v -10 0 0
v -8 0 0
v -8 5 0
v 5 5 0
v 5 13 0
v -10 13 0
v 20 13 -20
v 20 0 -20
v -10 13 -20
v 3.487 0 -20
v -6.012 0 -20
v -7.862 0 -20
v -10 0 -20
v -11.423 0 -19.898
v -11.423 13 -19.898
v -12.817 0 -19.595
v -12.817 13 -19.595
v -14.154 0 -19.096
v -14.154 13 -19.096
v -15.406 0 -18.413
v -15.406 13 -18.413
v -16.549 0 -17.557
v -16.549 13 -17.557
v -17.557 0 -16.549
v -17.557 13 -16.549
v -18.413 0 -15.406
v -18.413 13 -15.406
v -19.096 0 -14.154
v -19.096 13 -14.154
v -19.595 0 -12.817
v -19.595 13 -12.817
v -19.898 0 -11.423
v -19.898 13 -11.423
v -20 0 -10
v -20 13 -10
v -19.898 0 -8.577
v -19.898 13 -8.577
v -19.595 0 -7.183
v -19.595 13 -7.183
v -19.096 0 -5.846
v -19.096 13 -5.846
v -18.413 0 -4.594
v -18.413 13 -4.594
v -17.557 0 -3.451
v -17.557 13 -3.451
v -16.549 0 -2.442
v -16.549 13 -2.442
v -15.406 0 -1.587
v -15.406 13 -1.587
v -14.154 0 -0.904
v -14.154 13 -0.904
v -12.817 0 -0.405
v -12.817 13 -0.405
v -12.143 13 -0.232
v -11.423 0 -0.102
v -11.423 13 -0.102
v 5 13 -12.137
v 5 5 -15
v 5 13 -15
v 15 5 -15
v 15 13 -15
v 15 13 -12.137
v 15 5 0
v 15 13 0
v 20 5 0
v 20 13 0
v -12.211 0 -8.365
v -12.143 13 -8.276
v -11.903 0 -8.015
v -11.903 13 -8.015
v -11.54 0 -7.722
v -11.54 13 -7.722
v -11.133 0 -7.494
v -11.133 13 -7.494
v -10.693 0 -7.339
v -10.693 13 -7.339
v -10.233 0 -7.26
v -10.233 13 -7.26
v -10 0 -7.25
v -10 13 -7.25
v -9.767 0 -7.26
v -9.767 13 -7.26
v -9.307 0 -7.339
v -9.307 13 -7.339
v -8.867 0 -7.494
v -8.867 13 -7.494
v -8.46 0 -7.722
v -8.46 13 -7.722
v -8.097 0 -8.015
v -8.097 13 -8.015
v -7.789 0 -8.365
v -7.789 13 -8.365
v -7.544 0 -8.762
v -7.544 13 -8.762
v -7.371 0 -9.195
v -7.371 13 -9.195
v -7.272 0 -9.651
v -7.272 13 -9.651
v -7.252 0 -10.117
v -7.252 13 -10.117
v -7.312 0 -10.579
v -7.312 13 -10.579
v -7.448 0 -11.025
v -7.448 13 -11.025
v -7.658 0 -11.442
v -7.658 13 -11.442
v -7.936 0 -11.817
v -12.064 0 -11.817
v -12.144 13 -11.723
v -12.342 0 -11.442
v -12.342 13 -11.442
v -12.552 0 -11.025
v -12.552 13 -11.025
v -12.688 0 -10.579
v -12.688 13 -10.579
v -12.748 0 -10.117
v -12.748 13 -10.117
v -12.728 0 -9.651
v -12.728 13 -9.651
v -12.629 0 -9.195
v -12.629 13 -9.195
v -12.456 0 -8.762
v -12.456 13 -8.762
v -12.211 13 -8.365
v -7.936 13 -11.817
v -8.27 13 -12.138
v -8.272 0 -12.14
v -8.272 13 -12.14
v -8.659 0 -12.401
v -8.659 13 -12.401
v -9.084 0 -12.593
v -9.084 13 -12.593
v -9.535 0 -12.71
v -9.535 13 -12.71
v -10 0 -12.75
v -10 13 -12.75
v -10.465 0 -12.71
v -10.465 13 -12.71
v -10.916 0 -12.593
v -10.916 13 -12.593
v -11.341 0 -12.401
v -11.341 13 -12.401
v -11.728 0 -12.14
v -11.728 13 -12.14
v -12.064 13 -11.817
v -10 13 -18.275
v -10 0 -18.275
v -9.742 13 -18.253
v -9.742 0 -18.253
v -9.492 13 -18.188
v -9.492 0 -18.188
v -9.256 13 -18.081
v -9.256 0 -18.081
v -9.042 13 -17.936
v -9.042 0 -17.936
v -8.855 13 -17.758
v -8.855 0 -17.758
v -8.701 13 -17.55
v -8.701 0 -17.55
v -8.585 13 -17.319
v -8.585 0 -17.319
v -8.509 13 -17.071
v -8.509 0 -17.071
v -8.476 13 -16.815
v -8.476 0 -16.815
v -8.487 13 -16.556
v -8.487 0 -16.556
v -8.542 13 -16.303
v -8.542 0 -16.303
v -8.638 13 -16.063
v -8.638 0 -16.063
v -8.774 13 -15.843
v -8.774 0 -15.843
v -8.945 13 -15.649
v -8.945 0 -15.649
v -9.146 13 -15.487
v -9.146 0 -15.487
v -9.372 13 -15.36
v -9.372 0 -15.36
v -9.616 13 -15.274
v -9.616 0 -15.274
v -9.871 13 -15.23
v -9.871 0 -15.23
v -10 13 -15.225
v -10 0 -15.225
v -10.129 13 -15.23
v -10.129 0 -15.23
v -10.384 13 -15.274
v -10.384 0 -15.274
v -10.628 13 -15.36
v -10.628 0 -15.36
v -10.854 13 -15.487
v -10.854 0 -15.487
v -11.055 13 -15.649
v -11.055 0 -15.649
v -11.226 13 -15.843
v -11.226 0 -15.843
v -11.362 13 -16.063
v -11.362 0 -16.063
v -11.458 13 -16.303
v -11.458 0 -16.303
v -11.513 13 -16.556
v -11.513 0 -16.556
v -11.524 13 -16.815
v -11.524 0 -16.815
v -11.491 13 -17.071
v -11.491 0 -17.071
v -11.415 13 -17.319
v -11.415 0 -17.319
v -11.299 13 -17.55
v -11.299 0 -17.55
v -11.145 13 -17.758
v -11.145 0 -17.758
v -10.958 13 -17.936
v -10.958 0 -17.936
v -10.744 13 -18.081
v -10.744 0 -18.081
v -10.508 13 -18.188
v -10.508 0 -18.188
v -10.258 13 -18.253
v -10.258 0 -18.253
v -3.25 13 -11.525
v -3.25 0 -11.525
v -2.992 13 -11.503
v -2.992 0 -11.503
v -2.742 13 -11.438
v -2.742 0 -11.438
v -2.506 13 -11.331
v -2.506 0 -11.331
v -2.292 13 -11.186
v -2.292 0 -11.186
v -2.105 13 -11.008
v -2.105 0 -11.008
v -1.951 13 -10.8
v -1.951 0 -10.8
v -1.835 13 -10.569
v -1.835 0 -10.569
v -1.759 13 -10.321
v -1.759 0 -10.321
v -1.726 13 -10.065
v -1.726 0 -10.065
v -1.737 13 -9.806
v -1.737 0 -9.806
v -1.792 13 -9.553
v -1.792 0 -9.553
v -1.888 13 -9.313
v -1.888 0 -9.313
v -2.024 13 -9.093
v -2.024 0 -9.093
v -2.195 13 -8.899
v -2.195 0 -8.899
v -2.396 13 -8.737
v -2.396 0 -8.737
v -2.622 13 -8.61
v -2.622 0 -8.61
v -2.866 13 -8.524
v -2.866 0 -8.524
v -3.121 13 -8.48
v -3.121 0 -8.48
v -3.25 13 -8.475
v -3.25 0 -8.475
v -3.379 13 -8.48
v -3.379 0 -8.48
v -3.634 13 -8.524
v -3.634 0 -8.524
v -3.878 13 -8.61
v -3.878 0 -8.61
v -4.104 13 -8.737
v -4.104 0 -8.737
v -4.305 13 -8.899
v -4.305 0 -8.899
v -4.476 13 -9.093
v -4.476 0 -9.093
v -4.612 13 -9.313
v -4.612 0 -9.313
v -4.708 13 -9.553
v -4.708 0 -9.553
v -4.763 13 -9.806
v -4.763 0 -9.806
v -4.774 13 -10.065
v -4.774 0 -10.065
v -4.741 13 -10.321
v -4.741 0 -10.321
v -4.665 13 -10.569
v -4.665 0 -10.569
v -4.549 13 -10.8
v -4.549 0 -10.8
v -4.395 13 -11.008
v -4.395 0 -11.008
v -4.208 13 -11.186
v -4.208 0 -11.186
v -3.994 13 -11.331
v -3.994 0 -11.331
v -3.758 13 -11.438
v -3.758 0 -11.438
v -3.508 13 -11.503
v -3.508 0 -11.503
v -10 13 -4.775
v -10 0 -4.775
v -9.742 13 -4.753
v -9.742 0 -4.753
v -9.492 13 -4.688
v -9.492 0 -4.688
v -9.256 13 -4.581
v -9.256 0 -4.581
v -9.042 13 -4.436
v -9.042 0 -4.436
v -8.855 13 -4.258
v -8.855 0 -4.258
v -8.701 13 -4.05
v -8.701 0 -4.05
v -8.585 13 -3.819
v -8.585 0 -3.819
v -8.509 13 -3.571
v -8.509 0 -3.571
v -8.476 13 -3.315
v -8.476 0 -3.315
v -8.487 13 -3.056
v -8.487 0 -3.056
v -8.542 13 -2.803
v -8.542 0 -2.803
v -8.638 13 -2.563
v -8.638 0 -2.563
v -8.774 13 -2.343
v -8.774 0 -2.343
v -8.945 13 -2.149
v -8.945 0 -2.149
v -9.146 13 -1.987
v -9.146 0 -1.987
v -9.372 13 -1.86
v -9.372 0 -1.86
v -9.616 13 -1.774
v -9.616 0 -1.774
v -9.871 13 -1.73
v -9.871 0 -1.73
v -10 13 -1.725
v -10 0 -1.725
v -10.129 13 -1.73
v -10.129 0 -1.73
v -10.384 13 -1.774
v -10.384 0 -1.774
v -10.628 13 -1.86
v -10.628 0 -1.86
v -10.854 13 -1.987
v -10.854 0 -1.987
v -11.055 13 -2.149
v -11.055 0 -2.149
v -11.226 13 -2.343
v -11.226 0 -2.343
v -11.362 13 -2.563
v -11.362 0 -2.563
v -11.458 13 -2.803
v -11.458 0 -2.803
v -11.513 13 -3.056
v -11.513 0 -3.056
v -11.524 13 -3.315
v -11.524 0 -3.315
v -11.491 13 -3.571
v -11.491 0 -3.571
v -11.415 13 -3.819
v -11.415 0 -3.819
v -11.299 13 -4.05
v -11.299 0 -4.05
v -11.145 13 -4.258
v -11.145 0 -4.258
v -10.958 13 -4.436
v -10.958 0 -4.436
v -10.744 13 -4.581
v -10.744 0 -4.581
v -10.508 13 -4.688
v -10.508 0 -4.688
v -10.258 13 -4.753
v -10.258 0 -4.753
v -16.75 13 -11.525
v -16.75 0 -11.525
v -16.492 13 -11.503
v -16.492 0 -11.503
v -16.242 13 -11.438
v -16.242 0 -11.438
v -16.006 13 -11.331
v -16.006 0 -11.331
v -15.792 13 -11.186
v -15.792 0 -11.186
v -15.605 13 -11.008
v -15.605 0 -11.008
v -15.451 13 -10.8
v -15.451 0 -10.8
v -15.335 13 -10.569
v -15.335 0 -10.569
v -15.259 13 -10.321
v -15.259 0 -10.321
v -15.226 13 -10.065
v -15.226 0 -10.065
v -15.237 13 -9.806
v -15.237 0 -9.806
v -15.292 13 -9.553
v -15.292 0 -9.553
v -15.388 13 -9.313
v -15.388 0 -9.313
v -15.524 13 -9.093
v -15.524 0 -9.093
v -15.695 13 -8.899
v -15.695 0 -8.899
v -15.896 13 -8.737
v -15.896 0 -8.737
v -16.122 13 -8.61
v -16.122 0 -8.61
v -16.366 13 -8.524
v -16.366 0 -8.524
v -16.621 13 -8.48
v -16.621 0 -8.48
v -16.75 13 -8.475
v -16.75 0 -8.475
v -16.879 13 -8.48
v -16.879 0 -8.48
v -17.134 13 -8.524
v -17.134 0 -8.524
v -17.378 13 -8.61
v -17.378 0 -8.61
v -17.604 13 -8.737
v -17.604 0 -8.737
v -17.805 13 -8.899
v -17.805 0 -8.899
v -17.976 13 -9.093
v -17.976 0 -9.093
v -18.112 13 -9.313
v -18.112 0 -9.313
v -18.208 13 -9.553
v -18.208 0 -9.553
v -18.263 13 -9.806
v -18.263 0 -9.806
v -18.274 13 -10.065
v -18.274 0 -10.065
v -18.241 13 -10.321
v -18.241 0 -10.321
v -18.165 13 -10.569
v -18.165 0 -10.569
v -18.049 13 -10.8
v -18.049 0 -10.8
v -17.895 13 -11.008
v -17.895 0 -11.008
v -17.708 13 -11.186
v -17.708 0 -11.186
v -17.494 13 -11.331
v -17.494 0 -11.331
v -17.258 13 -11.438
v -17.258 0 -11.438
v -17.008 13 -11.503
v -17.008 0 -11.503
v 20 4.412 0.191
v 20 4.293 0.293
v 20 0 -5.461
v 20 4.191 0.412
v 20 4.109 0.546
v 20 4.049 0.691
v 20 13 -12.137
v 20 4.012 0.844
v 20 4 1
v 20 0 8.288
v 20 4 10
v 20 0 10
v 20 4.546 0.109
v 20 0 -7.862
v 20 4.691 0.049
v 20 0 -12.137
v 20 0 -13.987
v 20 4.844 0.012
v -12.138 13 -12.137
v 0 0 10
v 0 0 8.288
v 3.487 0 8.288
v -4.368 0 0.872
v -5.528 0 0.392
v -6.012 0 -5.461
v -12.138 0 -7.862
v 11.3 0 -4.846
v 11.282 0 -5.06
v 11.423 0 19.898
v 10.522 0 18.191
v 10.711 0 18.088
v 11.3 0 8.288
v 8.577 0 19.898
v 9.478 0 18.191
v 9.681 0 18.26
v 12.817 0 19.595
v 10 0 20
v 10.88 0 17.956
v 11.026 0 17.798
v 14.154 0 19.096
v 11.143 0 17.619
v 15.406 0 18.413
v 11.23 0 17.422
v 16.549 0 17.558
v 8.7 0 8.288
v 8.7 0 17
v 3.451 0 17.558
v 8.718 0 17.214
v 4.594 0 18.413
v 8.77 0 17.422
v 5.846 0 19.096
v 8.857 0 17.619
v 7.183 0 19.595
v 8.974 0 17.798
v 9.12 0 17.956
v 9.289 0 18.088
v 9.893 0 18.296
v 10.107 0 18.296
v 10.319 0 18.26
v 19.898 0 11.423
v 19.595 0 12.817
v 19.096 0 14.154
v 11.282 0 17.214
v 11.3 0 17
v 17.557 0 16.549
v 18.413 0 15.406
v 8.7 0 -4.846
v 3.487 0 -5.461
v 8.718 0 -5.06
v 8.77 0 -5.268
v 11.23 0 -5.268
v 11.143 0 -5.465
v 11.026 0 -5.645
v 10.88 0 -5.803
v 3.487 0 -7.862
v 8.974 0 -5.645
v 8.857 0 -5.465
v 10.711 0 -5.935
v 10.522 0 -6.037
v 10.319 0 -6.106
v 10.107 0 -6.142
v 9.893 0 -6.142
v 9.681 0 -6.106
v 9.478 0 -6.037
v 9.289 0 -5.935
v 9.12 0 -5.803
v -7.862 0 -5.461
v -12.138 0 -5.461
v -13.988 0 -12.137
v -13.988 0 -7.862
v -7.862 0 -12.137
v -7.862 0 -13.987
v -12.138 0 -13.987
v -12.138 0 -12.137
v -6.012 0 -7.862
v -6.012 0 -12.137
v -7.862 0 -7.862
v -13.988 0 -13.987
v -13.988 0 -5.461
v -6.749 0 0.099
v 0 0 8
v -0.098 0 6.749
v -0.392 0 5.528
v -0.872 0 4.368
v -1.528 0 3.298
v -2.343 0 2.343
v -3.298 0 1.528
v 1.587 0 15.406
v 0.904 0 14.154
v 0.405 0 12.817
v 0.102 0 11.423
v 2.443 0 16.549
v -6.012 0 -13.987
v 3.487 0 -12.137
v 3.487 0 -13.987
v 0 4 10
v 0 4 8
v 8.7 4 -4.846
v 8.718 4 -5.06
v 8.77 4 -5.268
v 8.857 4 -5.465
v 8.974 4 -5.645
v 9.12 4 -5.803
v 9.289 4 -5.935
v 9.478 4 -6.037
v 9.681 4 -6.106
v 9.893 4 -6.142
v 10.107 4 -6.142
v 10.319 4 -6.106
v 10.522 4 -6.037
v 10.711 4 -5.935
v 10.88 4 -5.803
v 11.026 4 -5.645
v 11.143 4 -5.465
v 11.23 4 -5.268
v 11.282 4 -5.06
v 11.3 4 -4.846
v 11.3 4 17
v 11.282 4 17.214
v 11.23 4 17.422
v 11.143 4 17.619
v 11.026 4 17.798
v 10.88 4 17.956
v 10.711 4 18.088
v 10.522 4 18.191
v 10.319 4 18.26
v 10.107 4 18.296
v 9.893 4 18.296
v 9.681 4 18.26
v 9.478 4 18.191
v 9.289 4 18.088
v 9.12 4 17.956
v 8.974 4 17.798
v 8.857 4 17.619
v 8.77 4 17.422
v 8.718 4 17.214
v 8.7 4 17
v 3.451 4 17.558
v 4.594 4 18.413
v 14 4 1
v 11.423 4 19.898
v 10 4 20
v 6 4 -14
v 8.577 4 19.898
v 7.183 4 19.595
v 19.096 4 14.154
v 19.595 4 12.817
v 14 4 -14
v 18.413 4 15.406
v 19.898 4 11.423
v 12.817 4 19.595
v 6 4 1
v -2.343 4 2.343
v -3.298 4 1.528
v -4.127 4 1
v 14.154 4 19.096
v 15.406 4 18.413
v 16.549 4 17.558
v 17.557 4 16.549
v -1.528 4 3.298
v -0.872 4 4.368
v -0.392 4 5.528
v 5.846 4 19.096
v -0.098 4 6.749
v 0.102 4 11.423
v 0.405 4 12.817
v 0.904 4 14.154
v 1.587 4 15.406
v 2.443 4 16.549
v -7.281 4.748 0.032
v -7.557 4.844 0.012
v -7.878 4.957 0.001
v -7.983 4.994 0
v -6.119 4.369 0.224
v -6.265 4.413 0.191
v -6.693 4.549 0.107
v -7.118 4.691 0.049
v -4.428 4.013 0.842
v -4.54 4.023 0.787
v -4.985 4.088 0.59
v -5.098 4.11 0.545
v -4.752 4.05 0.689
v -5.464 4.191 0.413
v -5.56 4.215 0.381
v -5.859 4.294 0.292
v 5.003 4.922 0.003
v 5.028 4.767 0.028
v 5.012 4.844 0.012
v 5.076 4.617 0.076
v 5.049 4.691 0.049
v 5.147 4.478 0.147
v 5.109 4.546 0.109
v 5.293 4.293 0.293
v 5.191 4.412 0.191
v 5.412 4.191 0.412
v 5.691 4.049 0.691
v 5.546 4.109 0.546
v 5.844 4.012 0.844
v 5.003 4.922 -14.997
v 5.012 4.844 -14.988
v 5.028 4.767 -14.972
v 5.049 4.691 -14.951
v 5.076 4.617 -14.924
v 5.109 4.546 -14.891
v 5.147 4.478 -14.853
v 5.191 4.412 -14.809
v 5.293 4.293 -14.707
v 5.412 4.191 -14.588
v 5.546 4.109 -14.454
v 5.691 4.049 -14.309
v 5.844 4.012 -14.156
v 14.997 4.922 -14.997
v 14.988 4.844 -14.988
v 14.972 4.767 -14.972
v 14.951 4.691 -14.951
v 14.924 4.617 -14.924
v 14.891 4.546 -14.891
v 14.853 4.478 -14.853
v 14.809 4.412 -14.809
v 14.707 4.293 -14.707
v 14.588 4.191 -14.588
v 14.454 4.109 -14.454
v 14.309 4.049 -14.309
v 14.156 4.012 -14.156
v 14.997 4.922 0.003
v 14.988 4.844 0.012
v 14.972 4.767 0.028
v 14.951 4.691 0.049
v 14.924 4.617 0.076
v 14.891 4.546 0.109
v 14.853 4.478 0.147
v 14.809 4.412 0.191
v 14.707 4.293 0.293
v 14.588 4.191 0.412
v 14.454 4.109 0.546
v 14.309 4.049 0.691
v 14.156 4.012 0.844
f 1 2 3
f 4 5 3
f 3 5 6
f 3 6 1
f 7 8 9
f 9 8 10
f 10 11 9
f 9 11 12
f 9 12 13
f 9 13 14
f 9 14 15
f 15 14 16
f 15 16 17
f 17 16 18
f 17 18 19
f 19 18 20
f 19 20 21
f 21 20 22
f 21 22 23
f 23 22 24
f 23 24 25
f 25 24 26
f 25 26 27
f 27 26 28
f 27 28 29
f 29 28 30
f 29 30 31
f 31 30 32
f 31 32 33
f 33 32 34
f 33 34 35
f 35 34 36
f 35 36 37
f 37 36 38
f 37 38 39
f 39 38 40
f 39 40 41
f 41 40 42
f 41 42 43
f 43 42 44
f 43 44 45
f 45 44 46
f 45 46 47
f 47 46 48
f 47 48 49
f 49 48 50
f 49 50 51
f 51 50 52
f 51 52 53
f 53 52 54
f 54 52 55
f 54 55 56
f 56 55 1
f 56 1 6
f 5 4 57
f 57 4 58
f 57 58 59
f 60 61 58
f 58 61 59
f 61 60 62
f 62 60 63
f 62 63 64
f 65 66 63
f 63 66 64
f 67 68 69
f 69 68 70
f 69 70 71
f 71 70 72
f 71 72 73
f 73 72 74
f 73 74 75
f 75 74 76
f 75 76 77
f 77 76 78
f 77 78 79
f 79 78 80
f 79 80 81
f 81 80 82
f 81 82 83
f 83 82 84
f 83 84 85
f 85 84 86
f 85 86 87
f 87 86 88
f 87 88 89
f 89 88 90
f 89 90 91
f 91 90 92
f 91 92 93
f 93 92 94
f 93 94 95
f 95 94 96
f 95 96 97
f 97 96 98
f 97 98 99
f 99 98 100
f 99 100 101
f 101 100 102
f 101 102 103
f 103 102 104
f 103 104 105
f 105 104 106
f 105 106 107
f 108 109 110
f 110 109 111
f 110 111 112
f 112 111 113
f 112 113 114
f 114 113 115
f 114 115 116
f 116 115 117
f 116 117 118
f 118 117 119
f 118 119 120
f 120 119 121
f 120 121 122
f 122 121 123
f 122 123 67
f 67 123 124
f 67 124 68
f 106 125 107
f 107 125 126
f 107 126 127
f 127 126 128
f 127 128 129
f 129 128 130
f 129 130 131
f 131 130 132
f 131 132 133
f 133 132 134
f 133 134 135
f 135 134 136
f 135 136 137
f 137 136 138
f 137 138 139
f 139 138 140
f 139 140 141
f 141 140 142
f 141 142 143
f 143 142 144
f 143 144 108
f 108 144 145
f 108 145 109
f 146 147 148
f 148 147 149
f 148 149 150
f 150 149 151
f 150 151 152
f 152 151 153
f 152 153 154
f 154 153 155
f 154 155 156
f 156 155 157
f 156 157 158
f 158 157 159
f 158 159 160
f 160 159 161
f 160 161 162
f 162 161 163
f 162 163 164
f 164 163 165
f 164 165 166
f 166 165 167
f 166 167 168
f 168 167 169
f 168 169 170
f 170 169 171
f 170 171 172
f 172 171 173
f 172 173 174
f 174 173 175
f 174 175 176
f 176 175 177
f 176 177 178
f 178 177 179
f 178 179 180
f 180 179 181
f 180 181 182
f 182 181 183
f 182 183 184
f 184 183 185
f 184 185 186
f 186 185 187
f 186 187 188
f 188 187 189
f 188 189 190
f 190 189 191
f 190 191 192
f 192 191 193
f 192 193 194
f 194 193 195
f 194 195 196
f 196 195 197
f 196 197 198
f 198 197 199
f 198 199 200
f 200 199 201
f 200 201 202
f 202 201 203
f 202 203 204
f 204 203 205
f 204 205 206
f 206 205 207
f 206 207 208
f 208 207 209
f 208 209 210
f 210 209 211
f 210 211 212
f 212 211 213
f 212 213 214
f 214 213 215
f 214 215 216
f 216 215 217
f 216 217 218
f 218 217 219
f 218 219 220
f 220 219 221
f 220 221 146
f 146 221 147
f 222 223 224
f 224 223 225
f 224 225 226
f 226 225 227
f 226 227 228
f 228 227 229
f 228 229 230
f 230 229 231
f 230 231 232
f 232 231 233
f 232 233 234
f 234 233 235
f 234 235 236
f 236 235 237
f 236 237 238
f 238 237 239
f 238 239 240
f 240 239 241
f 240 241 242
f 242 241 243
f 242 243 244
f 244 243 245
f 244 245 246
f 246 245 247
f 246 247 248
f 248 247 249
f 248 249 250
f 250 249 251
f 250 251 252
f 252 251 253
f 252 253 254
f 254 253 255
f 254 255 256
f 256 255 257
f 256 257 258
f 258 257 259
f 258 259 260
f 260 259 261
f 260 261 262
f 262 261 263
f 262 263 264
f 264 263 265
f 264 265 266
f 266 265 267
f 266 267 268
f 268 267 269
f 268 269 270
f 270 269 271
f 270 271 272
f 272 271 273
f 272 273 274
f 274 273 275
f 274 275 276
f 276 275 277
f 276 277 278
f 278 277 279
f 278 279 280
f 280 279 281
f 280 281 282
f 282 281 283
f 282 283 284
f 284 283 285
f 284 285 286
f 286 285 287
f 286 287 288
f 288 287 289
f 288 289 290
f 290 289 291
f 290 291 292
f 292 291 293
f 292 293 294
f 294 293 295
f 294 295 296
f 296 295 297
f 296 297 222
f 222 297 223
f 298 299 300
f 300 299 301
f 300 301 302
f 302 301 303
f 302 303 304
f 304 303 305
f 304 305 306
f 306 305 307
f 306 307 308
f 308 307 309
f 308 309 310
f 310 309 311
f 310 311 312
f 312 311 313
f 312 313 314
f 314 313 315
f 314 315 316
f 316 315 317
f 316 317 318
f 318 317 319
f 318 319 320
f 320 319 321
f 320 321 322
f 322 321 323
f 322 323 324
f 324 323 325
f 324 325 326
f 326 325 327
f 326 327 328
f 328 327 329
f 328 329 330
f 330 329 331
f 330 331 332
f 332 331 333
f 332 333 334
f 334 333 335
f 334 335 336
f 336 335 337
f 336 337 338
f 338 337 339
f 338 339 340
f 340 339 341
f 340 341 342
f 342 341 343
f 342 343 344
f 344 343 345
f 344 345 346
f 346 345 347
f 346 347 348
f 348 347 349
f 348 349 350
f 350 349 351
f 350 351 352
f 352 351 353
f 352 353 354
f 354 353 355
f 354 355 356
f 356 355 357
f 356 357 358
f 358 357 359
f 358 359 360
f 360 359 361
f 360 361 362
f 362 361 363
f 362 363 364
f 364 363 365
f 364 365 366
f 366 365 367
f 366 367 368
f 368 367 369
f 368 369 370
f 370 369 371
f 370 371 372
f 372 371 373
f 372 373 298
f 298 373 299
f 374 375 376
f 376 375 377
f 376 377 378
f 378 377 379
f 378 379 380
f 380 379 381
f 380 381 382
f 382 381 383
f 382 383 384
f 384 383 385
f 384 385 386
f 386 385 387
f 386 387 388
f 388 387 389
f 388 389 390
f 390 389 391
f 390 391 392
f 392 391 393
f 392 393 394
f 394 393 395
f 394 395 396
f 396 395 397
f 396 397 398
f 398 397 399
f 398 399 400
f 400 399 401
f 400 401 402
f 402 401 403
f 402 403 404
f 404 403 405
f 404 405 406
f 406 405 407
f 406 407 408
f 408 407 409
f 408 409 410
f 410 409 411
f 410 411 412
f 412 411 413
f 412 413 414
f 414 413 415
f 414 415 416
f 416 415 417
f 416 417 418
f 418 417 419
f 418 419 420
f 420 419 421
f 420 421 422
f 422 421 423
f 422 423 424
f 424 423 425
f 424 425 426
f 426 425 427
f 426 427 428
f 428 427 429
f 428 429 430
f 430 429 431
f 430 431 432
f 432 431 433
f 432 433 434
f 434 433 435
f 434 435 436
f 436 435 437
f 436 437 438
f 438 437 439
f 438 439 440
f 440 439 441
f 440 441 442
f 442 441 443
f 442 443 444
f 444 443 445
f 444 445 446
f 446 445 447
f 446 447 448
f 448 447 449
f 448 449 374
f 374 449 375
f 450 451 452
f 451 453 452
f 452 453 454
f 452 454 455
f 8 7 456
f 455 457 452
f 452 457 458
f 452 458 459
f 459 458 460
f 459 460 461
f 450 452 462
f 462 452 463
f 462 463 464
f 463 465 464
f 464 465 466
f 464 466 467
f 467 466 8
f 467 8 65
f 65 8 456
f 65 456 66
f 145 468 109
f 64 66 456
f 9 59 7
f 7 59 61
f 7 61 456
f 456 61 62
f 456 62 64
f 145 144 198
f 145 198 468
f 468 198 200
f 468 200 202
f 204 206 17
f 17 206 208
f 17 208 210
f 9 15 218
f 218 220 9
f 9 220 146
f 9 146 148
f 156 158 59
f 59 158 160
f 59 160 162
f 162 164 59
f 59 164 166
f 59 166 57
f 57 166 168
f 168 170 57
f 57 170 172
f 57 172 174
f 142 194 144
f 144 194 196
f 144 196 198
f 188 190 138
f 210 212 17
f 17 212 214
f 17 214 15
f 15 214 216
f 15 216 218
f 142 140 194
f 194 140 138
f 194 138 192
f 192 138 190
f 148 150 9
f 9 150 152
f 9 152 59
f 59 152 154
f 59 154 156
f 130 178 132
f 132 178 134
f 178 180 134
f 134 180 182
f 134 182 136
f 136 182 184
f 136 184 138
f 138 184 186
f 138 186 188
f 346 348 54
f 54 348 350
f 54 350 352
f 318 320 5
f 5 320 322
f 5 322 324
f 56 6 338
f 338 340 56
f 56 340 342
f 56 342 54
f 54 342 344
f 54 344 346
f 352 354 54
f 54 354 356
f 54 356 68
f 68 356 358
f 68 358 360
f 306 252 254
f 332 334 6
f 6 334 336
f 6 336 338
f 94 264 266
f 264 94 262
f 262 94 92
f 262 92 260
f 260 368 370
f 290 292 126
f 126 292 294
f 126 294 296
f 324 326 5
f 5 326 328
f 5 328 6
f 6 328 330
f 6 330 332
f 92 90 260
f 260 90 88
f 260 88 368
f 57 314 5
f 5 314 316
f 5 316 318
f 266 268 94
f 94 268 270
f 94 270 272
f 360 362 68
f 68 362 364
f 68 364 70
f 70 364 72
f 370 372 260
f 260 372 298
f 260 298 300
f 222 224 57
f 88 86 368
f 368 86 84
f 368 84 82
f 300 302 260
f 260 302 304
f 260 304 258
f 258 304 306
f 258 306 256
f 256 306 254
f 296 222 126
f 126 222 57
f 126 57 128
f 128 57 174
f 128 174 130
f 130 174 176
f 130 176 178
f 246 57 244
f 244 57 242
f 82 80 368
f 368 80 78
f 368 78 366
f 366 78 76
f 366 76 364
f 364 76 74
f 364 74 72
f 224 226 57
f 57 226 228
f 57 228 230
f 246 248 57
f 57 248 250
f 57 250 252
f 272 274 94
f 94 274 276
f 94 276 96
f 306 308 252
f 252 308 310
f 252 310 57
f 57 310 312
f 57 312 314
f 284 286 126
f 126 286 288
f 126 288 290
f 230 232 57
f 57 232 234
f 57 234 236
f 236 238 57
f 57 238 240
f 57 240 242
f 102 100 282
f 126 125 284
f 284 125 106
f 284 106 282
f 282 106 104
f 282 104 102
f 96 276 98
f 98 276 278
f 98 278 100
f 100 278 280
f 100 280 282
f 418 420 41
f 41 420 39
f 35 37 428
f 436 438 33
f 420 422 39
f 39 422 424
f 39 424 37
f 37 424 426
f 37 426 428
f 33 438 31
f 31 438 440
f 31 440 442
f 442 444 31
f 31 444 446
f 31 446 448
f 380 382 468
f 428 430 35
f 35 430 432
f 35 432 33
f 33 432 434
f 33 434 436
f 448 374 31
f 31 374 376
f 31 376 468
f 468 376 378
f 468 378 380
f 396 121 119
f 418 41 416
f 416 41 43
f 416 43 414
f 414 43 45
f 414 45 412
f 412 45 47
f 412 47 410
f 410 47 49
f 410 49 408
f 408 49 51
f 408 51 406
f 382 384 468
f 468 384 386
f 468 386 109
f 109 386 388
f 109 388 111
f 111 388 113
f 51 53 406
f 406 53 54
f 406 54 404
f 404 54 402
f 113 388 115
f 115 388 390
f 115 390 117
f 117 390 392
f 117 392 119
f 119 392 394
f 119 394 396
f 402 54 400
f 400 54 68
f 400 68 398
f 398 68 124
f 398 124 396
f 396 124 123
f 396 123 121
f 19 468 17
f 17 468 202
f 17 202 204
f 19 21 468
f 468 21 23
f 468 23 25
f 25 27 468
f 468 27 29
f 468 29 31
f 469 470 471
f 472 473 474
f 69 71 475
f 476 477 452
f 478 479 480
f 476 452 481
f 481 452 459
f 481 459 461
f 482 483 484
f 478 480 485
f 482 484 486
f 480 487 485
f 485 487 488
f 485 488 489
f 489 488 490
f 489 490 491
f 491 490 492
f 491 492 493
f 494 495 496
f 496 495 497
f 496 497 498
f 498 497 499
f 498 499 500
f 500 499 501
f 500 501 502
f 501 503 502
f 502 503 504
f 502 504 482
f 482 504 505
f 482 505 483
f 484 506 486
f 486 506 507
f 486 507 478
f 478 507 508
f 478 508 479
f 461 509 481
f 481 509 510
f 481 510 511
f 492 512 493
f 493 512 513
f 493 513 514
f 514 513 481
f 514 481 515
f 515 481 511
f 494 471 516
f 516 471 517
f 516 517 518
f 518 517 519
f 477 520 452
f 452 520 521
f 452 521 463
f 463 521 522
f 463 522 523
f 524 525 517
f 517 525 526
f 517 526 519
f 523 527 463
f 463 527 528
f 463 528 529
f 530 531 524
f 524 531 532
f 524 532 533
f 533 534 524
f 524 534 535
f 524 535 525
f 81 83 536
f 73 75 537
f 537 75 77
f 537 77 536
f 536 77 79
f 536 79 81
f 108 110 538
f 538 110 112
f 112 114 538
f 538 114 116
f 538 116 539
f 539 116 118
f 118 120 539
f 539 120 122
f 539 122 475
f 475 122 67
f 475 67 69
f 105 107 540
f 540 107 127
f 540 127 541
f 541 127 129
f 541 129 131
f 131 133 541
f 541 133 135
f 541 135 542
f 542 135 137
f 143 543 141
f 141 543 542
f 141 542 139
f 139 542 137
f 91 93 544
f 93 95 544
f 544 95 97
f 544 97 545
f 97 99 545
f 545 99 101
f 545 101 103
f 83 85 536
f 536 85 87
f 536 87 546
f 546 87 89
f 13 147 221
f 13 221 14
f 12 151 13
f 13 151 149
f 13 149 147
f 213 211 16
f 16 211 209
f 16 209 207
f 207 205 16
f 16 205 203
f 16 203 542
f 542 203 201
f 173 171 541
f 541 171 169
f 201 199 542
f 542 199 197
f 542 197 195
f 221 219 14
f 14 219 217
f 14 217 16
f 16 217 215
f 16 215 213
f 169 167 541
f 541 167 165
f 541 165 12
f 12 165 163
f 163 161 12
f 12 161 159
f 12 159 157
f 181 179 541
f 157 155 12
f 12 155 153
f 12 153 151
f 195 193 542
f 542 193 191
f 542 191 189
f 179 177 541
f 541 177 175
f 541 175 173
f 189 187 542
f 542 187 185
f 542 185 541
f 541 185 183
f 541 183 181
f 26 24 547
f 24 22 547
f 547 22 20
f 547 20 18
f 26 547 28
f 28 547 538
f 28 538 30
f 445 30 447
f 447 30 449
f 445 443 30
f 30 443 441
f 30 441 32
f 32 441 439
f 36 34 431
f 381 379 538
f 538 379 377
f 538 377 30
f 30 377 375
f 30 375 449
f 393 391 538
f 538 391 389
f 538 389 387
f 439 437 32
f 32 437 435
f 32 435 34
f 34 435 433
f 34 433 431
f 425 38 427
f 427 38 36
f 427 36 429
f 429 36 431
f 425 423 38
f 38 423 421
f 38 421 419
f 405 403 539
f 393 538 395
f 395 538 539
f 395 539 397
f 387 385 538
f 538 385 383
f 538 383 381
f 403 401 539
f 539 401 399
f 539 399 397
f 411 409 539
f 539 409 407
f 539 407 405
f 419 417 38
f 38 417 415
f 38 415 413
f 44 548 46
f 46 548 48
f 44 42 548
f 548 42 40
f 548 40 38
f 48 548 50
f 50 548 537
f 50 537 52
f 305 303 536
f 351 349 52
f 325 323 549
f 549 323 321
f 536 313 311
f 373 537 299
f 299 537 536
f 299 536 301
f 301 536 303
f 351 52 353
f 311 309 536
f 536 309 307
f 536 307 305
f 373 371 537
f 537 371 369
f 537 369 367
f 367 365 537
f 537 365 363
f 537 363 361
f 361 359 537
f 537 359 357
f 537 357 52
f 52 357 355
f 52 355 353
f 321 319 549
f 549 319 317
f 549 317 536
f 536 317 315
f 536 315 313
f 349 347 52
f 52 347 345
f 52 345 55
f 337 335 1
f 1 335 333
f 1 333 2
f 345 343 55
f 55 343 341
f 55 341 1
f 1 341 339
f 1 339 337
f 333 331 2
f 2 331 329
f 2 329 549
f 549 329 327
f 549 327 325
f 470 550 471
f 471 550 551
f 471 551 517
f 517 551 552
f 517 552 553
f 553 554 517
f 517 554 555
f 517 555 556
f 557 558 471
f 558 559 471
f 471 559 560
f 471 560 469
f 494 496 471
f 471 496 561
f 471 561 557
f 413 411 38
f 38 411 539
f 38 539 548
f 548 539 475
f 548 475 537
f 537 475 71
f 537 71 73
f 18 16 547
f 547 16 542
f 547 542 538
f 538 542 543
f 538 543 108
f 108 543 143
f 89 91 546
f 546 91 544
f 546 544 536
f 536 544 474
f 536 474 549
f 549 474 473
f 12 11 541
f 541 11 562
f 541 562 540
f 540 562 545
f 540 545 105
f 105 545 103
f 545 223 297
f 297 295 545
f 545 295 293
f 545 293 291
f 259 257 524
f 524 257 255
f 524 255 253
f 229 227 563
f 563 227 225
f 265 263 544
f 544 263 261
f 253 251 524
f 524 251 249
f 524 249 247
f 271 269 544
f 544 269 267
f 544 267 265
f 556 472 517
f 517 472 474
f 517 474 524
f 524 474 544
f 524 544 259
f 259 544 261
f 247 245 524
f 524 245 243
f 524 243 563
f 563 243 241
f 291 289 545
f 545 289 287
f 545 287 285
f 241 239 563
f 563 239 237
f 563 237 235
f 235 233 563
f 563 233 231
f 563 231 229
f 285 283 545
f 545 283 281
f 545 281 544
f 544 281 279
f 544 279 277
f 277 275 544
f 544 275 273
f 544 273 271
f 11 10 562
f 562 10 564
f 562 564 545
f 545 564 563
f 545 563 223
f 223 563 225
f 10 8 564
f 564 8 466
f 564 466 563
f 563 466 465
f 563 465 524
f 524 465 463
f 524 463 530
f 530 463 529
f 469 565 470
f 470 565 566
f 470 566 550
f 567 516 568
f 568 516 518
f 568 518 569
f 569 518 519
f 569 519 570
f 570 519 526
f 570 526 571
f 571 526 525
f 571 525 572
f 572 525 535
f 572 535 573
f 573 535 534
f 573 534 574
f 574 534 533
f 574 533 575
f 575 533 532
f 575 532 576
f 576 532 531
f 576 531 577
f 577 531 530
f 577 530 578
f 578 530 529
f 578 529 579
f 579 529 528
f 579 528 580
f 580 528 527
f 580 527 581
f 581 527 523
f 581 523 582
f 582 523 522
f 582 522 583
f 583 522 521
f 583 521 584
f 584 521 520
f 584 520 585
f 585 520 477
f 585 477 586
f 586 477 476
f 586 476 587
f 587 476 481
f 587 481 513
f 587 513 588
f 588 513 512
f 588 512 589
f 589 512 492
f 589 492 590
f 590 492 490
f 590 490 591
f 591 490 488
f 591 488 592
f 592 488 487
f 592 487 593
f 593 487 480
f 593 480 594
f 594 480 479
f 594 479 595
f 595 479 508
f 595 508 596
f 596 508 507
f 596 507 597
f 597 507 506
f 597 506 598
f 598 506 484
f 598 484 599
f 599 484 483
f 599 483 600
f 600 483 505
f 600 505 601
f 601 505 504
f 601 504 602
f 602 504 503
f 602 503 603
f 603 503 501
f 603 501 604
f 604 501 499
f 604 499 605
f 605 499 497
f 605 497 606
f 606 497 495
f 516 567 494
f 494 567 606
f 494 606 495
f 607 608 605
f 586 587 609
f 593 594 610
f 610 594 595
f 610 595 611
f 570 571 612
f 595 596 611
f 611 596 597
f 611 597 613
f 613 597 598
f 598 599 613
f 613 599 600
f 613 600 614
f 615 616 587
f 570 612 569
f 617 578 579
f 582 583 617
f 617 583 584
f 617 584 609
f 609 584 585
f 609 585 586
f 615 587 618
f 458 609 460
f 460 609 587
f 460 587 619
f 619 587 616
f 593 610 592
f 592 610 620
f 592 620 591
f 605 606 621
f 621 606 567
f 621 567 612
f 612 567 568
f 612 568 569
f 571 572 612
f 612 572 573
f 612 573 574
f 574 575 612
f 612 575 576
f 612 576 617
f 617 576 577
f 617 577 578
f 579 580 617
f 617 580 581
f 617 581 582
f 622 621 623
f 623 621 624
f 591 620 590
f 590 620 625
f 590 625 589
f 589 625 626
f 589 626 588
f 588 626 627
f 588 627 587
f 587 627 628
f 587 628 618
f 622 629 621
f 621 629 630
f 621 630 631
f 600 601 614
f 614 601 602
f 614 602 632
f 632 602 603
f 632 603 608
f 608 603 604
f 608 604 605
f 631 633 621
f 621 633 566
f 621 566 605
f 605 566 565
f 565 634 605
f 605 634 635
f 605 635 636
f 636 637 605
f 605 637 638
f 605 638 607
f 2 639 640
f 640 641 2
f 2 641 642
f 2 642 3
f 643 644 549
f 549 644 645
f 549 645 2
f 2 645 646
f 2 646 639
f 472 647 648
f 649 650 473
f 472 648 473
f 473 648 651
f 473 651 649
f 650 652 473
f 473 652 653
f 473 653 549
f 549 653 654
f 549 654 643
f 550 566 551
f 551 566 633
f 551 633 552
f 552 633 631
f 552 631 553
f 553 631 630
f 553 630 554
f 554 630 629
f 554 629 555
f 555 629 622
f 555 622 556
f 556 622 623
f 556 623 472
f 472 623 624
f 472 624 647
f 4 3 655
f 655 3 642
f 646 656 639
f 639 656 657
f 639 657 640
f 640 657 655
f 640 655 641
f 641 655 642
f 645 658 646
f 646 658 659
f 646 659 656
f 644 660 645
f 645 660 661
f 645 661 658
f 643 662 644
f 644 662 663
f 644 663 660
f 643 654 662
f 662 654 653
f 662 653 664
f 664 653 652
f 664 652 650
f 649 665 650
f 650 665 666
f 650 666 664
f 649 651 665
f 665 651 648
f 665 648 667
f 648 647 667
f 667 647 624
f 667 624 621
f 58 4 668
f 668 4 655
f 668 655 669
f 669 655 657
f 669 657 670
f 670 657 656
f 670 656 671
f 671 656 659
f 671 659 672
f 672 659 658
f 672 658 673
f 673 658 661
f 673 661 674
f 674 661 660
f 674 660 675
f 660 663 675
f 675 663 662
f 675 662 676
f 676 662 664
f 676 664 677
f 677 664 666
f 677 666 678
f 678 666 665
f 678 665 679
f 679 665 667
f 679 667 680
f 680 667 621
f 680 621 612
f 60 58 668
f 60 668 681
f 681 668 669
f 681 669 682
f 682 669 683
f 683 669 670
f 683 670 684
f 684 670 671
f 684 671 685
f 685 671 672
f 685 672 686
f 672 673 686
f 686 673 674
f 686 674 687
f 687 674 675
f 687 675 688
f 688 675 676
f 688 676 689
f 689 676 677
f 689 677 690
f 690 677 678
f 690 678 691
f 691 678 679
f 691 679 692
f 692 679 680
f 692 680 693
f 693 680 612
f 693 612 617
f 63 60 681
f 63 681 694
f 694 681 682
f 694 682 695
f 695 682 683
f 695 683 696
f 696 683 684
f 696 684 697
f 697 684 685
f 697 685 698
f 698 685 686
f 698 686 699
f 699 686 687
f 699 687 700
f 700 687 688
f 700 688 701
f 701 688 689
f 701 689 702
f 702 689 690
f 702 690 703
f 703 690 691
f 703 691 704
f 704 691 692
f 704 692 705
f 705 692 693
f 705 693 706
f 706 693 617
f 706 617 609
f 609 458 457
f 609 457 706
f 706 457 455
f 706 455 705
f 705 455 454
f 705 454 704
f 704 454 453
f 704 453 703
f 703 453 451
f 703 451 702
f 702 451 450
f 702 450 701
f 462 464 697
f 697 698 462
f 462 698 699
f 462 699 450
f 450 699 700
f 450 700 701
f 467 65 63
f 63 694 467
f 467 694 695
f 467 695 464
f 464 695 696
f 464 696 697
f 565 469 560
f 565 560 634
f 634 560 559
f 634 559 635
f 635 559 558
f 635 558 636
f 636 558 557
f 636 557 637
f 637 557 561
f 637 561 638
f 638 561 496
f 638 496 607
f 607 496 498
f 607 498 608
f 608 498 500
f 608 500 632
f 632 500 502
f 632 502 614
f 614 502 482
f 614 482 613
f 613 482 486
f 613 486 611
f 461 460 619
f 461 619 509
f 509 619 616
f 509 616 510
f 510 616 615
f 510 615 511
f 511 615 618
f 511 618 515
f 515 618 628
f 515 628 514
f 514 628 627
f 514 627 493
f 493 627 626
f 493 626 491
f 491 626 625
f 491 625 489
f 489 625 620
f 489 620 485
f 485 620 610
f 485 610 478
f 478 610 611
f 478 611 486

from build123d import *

# Parameters (mm, degrees)
SKETCH_1_R      = 1.525
SKETCH_1_R_2    = 2.75
EXTRUDE_1_DEPTH = 13
EXTRUDE_2_DEPTH = 4
FILLET_1_R      = 8
FILLET_2_R      = 1
FILLET_3_R      = 10


with BuildPart() as part:
    # 草图1 → 凸台-拉伸1 (new body)
    with BuildSketch(Plane(origin=(0, 0, 0), x_dir=(1, 0, 0), z_dir=(0, 1, 0))):
        with BuildLine():
            Line((-10, 0), (0, 0))
            Line((0, 0), (5, 0))
            Line((5, 0), (5, 15))
            Line((5, 15), (15, 15))
            Line((15, 15), (15, 0))
            Line((15, 0), (20, 0))
            Line((20, 0), (20, 20))
            Line((20, 20), (0, 20))
            Line((0, 20), (-10, 20))
            ThreePointArc((-10, 20), (-20, 10), (-10, 0))
        make_face()
        with Locations(Location((-10, 3.25, 0), (0, 0, 90))):
            Circle(SKETCH_1_R, mode=Mode.SUBTRACT)
        with Locations(Location((-16.75, 10, 0), (0, 0, 90))):
            Circle(SKETCH_1_R, mode=Mode.SUBTRACT)
        with Locations(Location((-10, 10, 0), (0, 0, 90))):
            Circle(SKETCH_1_R_2, mode=Mode.SUBTRACT)
        with Locations(Location((-10, 16.75, 0), (0, 0, 90))):
            Circle(SKETCH_1_R, mode=Mode.SUBTRACT)
        with Locations(Location((-3.25, 10, 0), (0, 0, 90))):
            Circle(SKETCH_1_R, mode=Mode.SUBTRACT)
    extrude(amount=EXTRUDE_1_DEPTH)

    # 草图1<3> → 凸台-拉伸2 (add)
    with BuildSketch(Plane(origin=(0, 0, 0), x_dir=(1, 0, 0), z_dir=(0, 1, 0))):
        Polygon((5, 0), (0, 0), (0, -20), (20, -20), (20, 0), (15, 0), (15, 15), (5, 15), align=None)
        with BuildLine():
            Line((8.7, -17), (8.7, 4.846192362))
            ThreePointArc((8.7, 4.846192362), (10, 6.146192362), (11.3, 4.846192362))
            Line((11.3, 4.846192362), (11.3, -17))
            ThreePointArc((11.3, -17), (10, -18.3), (8.7, -17))
        make_face(mode=Mode.SUBTRACT)
    extrude(amount=EXTRUDE_2_DEPTH)

    # 圆角1
    fillet_1_edges = [part.edges().sort_by_distance(p)[0] for p in [
        (0, 2, 0),
    ]]
    fillet(fillet_1_edges, radius=FILLET_1_R)

    # 圆角2
    fillet_2_edges = [part.edges().sort_by_distance(p)[0] for p in [
        (17.5, 4, 0),
        (15, 4, -7.5),
        (10, 4, -15),
        (5, 4, -7.5),
        (-1.5, 4, 0),
    ]]
    fillet(fillet_2_edges, radius=FILLET_2_R)

    # 圆角3
    fillet_3_edges = [part.edges().sort_by_distance(p)[0] for p in [
        (20, 2, 20),
        (0, 2, 20),
    ]]
    fillet(fillet_3_edges, radius=FILLET_3_R - 0.0001)  # a hair under: the kernel refuses the full size


solid = part.part
